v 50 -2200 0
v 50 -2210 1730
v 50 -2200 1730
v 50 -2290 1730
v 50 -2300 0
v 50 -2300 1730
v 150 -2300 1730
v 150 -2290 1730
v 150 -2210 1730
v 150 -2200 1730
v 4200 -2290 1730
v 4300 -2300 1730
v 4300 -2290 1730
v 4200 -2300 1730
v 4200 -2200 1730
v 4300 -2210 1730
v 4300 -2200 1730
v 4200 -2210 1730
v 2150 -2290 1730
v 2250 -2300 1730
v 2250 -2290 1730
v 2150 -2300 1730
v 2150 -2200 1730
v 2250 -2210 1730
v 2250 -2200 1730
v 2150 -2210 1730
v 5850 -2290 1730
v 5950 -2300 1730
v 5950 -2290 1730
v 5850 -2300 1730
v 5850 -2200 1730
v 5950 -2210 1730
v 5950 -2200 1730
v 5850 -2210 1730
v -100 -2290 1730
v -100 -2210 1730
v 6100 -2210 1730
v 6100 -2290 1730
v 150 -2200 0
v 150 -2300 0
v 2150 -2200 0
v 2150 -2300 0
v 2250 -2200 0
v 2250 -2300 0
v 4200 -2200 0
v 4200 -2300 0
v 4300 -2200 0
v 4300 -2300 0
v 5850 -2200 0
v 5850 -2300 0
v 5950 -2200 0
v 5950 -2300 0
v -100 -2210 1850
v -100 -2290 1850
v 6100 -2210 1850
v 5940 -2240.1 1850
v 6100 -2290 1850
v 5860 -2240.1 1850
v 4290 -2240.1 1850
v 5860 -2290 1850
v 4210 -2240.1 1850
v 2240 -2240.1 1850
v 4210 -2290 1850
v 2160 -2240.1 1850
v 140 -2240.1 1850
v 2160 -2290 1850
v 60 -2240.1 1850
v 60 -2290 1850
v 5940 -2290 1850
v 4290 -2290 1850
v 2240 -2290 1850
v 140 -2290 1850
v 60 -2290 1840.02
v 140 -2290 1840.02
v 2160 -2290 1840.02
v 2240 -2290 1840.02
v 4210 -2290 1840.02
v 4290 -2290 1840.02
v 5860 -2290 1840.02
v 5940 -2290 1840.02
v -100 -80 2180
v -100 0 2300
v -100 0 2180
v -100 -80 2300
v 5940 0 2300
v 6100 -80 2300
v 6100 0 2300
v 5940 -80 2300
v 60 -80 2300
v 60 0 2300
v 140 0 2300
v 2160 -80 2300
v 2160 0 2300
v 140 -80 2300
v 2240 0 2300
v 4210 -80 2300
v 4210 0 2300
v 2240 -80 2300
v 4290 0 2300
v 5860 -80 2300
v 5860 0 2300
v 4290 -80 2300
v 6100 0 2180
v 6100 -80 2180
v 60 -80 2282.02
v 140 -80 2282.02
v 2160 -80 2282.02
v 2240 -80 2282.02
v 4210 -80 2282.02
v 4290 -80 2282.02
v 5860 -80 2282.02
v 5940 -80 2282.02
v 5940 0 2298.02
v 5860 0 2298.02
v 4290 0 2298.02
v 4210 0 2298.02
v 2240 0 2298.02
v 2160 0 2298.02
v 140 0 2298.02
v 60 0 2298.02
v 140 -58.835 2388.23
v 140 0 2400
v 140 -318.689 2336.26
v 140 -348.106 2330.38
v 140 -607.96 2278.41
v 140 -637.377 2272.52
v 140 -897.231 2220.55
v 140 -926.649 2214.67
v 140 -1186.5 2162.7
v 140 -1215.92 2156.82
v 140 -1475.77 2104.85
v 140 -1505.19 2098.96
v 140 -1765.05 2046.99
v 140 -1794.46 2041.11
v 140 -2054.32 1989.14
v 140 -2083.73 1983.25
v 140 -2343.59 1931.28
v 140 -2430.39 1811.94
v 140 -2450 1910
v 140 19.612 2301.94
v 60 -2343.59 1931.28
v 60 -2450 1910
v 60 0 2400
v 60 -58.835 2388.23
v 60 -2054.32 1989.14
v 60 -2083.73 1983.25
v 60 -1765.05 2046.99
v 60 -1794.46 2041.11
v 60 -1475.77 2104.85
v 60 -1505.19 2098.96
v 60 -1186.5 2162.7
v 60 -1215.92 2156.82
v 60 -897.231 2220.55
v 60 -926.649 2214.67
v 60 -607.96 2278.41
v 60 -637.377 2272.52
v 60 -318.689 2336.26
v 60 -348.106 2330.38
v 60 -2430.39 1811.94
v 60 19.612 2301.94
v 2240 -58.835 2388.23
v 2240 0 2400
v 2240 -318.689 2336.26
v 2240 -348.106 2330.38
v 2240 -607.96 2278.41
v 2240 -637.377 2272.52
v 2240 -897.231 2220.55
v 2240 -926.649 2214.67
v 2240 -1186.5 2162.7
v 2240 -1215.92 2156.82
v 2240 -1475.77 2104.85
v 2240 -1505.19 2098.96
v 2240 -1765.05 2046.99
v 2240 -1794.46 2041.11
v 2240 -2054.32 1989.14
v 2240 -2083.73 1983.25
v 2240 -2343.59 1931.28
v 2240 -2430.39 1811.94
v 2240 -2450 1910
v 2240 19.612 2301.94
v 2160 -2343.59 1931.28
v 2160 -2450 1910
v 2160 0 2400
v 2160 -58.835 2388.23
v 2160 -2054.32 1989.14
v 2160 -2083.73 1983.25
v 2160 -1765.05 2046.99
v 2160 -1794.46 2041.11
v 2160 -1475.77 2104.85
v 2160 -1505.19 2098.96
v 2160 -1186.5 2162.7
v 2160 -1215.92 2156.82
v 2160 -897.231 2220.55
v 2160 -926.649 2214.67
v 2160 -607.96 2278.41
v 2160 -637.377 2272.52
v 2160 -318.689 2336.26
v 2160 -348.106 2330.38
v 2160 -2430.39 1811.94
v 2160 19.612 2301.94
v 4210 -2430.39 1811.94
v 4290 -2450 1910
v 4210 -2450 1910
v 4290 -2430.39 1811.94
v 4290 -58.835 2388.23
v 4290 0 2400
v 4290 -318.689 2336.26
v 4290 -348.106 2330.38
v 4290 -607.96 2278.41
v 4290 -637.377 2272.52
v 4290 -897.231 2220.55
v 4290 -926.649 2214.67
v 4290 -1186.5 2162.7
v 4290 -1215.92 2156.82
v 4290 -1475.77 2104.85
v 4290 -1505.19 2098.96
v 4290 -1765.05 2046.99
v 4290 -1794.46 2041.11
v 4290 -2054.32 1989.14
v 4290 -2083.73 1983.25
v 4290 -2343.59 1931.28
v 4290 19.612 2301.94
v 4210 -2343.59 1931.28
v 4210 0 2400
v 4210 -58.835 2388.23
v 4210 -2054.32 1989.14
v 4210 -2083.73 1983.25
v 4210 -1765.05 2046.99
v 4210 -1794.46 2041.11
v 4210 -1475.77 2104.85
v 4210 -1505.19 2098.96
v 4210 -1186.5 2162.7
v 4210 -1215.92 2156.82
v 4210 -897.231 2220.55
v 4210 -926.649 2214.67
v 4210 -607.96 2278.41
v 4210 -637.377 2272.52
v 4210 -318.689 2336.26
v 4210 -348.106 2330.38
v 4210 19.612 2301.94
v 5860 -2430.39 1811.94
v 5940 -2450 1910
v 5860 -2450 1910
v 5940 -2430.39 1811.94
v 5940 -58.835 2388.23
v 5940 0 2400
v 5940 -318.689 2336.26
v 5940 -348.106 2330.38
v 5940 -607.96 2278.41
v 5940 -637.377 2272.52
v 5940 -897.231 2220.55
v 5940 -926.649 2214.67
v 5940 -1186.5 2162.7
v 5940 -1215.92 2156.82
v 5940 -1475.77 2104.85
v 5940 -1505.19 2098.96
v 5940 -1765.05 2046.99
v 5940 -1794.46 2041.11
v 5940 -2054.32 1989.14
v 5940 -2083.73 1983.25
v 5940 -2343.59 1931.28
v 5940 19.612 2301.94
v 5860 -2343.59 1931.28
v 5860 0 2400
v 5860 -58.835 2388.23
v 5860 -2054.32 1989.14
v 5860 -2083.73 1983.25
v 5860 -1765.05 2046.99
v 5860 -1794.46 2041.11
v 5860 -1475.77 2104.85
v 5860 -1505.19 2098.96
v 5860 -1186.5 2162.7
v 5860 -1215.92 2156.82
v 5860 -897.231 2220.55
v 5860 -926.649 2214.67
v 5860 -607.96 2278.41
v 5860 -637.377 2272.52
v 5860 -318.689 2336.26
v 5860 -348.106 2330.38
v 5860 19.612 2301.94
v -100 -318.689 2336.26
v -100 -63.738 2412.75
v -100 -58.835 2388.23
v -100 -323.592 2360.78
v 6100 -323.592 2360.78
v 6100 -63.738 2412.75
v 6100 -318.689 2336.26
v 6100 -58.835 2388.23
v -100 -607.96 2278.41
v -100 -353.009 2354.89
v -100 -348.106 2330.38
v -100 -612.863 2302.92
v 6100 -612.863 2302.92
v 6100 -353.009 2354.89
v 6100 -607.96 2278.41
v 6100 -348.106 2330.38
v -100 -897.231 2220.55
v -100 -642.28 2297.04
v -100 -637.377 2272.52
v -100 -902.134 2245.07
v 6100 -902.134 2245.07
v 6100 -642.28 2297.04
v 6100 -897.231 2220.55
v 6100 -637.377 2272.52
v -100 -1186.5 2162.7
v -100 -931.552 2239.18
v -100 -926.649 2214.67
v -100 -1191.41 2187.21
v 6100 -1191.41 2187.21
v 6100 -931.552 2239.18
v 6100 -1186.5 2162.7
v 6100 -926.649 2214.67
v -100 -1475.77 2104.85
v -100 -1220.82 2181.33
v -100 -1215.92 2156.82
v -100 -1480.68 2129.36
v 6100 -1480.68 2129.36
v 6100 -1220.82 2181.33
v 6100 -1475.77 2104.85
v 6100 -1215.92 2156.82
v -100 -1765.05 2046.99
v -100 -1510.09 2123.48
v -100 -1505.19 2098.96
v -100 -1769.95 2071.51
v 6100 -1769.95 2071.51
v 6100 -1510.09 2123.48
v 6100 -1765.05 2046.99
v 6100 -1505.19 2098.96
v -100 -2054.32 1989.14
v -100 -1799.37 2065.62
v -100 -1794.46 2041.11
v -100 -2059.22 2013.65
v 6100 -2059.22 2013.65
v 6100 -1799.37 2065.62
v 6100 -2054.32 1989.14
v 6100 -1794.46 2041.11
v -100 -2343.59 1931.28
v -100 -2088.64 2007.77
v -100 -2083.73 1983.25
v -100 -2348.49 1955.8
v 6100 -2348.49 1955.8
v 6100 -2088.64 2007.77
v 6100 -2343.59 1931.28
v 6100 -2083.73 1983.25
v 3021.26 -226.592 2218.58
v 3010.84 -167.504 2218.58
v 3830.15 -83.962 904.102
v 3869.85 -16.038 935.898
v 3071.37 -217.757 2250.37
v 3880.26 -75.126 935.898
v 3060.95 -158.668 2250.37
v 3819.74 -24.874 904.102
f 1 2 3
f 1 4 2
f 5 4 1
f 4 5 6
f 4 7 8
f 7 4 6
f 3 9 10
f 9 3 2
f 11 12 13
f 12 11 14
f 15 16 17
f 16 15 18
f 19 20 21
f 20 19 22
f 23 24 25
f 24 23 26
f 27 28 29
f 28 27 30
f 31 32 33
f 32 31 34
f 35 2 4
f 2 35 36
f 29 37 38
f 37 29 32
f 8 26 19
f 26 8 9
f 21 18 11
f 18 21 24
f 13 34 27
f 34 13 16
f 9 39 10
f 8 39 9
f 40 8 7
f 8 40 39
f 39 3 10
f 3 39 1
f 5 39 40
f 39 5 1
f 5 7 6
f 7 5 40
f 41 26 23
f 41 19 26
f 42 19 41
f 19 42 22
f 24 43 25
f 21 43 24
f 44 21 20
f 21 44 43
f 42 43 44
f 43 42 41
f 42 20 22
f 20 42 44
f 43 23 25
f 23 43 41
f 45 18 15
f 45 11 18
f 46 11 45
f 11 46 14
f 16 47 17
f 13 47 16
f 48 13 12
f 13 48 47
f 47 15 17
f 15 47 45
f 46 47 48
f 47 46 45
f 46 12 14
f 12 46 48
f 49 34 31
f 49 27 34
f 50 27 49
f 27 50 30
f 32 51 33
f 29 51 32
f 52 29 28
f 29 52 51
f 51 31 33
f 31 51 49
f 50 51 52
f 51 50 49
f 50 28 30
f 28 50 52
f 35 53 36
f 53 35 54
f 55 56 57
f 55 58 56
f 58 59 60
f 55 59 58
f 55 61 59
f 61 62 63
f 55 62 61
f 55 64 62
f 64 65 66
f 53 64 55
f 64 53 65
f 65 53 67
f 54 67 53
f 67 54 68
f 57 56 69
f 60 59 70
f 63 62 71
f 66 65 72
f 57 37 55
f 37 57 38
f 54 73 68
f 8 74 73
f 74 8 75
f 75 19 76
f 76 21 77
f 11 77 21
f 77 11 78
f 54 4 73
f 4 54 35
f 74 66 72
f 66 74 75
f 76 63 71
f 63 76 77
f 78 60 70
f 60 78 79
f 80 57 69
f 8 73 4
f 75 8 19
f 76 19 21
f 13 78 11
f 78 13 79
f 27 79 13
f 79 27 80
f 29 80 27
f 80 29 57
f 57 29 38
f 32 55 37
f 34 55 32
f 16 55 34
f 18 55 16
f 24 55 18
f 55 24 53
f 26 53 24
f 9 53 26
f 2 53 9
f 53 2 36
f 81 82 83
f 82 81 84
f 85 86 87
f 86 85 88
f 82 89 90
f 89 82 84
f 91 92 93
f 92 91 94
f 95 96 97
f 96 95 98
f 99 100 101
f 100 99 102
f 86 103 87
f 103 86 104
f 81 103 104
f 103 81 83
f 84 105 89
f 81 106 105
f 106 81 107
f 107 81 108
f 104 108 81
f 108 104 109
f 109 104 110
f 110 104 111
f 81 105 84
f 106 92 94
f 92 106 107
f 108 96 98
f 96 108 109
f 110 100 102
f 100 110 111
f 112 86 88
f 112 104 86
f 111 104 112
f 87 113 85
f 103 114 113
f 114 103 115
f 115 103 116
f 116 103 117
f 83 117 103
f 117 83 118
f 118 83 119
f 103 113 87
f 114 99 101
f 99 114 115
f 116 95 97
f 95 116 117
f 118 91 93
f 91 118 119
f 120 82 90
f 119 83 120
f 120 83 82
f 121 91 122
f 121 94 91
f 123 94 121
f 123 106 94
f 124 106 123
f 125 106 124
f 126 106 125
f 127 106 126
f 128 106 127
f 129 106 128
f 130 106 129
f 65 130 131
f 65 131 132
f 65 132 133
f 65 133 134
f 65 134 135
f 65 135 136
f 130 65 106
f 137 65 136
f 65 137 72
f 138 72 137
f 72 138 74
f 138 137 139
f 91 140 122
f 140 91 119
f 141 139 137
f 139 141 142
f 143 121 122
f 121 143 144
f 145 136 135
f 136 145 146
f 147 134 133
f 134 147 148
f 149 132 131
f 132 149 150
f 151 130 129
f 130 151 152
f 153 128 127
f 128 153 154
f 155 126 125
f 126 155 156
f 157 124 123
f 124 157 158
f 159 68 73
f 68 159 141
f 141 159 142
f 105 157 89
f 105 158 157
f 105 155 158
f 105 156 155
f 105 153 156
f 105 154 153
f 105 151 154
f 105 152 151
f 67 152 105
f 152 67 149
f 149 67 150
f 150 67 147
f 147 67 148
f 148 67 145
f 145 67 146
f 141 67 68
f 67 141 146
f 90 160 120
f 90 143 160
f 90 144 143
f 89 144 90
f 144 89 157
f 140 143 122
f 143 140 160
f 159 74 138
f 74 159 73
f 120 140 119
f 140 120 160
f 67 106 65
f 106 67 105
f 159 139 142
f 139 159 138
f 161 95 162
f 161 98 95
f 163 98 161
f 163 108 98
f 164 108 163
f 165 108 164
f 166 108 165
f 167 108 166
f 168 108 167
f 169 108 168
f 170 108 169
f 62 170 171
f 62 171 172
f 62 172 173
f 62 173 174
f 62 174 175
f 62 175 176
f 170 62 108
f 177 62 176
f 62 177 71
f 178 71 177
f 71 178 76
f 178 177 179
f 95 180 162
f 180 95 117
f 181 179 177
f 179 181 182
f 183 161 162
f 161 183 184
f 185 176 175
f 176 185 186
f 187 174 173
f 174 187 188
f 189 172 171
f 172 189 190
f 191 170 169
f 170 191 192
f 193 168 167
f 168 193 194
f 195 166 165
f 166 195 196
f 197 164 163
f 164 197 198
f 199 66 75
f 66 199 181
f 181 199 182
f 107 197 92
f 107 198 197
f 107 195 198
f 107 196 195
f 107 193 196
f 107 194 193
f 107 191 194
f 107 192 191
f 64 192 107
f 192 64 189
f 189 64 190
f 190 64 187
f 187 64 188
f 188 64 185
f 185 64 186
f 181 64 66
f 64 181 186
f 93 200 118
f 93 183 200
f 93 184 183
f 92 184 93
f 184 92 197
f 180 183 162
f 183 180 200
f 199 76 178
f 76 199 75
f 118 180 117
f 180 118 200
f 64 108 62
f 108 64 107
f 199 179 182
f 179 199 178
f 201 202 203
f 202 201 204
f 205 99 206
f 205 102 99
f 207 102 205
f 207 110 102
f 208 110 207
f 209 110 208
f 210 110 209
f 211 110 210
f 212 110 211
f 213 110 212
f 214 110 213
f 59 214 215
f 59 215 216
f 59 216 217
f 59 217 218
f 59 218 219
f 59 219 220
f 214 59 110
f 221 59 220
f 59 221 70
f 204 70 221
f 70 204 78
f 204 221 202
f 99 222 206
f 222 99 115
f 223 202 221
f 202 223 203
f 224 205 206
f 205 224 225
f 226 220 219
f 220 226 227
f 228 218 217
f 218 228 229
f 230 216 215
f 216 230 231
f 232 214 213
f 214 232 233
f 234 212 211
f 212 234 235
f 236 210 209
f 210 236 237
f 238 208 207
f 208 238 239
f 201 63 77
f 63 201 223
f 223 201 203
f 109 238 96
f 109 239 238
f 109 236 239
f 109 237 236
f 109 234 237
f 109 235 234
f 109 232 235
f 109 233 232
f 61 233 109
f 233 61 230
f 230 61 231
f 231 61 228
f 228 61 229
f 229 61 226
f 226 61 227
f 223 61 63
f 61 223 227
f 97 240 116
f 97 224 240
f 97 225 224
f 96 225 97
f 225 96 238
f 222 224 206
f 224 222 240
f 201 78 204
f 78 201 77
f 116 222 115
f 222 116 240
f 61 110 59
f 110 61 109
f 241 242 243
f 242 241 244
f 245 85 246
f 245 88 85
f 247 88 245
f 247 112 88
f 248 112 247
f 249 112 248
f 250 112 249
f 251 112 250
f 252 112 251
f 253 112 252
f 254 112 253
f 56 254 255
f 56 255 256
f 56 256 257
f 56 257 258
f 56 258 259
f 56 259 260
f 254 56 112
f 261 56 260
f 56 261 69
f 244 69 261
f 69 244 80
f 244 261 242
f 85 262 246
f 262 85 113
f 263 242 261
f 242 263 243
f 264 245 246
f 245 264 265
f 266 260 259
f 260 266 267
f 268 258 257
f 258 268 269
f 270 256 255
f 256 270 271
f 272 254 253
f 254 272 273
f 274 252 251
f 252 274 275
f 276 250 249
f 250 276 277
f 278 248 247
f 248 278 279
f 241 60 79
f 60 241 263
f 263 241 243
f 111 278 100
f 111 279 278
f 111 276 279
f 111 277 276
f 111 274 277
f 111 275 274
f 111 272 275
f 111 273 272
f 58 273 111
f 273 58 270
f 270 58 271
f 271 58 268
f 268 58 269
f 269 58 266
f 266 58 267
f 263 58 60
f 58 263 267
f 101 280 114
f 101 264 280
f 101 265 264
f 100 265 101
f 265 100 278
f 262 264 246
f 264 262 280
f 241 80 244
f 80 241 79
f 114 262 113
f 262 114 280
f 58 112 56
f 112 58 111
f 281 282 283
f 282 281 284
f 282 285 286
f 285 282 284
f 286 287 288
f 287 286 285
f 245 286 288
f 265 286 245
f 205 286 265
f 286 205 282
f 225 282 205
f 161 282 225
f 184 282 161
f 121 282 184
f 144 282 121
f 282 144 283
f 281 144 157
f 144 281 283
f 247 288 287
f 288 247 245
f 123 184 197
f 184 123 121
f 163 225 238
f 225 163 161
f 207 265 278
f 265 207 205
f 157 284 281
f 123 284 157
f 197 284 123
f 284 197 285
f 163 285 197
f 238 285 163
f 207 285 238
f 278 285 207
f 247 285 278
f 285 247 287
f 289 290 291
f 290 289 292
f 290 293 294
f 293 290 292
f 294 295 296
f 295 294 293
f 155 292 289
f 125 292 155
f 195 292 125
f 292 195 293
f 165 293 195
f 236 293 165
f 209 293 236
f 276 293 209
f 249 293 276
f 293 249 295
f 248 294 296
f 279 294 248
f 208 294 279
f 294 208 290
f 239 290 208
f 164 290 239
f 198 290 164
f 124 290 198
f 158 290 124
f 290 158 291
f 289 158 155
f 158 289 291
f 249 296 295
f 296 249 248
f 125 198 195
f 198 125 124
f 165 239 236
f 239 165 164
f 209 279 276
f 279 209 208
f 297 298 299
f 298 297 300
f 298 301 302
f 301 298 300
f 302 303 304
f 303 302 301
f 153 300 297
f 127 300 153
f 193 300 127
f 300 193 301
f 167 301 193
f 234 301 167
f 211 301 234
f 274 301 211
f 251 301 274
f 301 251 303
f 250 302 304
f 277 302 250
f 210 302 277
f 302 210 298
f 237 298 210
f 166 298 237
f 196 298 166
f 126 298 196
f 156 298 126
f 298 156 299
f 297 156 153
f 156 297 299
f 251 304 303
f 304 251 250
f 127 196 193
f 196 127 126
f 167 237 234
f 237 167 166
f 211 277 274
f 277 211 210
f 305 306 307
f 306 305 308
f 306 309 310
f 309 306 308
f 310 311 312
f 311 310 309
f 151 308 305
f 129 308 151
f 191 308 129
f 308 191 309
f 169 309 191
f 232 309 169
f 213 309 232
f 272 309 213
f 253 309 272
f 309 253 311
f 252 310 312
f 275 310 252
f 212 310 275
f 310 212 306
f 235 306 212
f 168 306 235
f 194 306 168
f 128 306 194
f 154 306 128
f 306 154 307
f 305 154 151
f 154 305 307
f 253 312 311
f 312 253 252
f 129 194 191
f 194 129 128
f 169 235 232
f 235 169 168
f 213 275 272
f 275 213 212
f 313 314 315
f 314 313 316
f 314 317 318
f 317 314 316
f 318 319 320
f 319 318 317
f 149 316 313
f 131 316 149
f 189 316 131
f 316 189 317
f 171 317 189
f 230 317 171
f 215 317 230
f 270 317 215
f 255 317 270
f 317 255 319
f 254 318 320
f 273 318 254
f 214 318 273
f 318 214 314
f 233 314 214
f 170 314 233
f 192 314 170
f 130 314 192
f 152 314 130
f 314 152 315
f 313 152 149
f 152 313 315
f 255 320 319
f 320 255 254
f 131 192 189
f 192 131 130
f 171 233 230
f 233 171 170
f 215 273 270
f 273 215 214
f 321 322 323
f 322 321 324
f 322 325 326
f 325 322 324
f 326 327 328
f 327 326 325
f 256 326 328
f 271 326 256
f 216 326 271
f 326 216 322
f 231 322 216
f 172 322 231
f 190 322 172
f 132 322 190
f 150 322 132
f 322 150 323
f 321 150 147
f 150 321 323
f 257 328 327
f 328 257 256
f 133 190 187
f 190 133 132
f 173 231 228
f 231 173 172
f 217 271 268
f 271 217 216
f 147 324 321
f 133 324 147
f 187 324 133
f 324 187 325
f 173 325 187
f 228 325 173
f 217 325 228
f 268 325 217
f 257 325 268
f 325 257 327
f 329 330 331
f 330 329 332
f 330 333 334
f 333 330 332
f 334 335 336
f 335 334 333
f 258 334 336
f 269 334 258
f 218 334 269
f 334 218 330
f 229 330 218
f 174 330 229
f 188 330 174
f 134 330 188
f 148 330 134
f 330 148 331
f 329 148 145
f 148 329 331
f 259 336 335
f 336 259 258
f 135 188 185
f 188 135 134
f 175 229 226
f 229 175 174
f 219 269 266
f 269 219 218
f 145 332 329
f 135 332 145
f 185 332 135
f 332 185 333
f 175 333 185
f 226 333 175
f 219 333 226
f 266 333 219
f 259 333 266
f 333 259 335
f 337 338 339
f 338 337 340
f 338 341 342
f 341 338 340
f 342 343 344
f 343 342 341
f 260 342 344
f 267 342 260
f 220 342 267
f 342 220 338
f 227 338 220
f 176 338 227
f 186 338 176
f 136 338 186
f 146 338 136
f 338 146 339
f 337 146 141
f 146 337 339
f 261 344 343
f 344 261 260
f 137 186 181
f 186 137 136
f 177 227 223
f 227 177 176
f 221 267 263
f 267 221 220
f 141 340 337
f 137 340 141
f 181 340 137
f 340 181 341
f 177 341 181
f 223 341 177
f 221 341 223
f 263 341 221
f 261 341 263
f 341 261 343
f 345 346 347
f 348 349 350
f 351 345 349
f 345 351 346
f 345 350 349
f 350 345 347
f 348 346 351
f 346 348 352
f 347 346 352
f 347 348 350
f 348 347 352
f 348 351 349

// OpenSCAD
// file: tea_shop_pergola_parameters.scad
// =============================================================================
// Tea Shop — GROUP 3: PERGOLA PARAMETERS
// -----------------------------------------------------------------------------
// All units: mm (1000 mm = 1.0 m), real-life scale.
// Shared global coordinate system (identical to Groups 1 & 2):
//   +X -> left -> right  (0 = left outer wall face, BUILD_W = right outer wall)
//   +Y -> front -> back  (0 = front eave wall face, BUILD_D = back wall)
//   +Z -> up             (0 = ground / plinth top datum)
//   Porch canopy extends in negative Y (forward, from Y = 0 to Y ≈ -2450 mm).
// =============================================================================

// --- SHARED GLOBAL VARIABLES (from Groups 1 & 2 — identical values) ----------
WALL_T  = 250;   // wall panel thickness                      (0.25 m)
BUILD_W = 6000;  // building width along X                    (6.00 m)
BUILD_D = 4000;  // building depth along Y                    (4.00 m)
BACK_H  = 3200;  // wall height at BACK (tall lean-to side)   (3.20 m)
FRONT_H = 2400;  // wall height at FRONT eave (short side)    (2.40 m)

// Group 1 alias names
wall_thickness    = WALL_T;
building_width    = BUILD_W;
building_depth    = BUILD_D;
back_height       = BACK_H;
front_eave_height = FRONT_H;

// Group 1 front opening & plinth references:
sill_height       = 900;   // knee-wall sill datum where brace foot rests (0.90 m)
base_front_margin = 3000;  // total front porch slab depth               (3.00 m)

// Group 2 roof slope derivation (pergola slope follows this exact angle):
ROOF_RISE  = BACK_H - FRONT_H;  // 800 mm
ROOF_RUN   = BUILD_D;            // 4000 mm
ROOF_ANGLE = atan(ROOF_RISE / ROOF_RUN); // ~11.3099°


// =============================================================================
// GROUP 3 PARAMETERS — Pergola Structure & Dimensions
// =============================================================================

// --- Post Cross-Section & Layout ---------------------------------------------
// REFERENCE NOTE: Posts are square timber (~100x100 mm), confirmed from
// wireframe (countryside-tea-shop-3d-model-9cc7378ff7.webp).
POST_SIZE = 100;  // square timber post dimension (100 mm × 100 mm) (0.10 m)

// Y coordinate of the front posts line:
// Placed at Y = -2250 mm (~75% forward across the 3.0 m porch slab),
// leaving ~750 mm open patio in front of posts as shown in reference renders.
POST_Y    = -2250;

// Array of 4 post positions [X, Y]:
// Derived from front elevation proportions:
//   - Post 1 (X=100)  : near left edge of pergola / bench area
//   - Post 2 (X=2200) : intermediate post subdividing wide 3.4m service window span
//   - Post 3 (X=4250) : positioned at mid-pier directly supporting signboard
//   - Post 4 (X=5900) : near right corner of pergola
PERGOLA_POST_POSITIONS = [
    [100,  POST_Y],  // Post 1: Front-Left
    [2200, POST_Y],  // Post 2: Front-Mid-Left
    [4250, POST_Y],  // Post 3: Front-Mid-Right (under "TEA SHOP" sign)
    [5900, POST_Y]   // Post 4: Front-Right
];

// --- Beam Dimensions ---------------------------------------------------------
MAIN_BEAM_WIDTH  = 80;   // thickness of header & ledger beams along Y (0.08 m)
MAIN_BEAM_HEIGHT = 120;  // vertical depth of header & ledger beams    (0.12 m)

// --- Cross Beams / Rafters ---------------------------------------------------
CROSS_BEAM_WIDTH  = 80;   // rafter timber thickness along X            (0.08 m)
CROSS_BEAM_HEIGHT = 100;  // rafter timber depth normal to slope        (0.10 m)

// Rafter X positions aligning directly over the 4 posts:
CROSS_BEAM_X_POSITIONS = [100, 2200, 4250, 5900];

// Sloped length of rafter from front wall (Y=0) to 200 mm past the posts:
CROSS_BEAM_SLOPE_LEN = (abs(POST_Y) + 200) / cos(ROOF_ANGLE);

// --- Pergola Slope Datum & Post Height Derivation ----------------------------
// The pergola roof slopes DOWNWARDS from the front wall eave (Y=0, Z=FRONT_H)
// toward the front posts (Y=POST_Y).
// Under the slope, the rafter top is at: FRONT_H - abs(POST_Y) * tan(ROOF_ANGLE).
// Below the rafters is the header beam (MAIN_BEAM_HEIGHT).
// Post tops touch the underside of the header beam:
PERGOLA_EAVE_Z = FRONT_H;
POST_HEIGHT    = PERGOLA_EAVE_Z - abs(POST_Y) * tan(ROOF_ANGLE) - CROSS_BEAM_HEIGHT - MAIN_BEAM_HEIGHT;

// --- Diagonal Prop Brace -----------------------------------------------------
// Single prop strut visible in window wireframe (8ffafd36e4.webp), anchoring
// near the counter sill and rising diagonally to the overhead rafter.
BRACE_WIDTH     = 60;   // diagonal brace width                       (0.06 m)
BRACE_THICKNESS = 60;   // diagonal brace thickness                   (0.06 m)
BRACE_LENGTH    = 1550; // length along diagonal strut axis           (1.55 m)
BRACE_ANGLE     = 32;   // angle of brace from vertical in degrees

// --- Slatted Roof Canopy (Planks) --------------------------------------------
// 8 flat timber planks running along X (spanning full width), arrayed along
// the slope from the front wall eave to cantilever slightly past the front posts.
SLAT_WIDTH        = 265;  // width of each individual wooden plank      (0.265 m)
SLAT_THICKNESS    = 25;   // thickness of timber plank                  (0.025 m)
SLAT_GAP          = 30;   // air gap between consecutive slats          (0.030 m)
SLAT_COUNT        = 8;    // count matching 8 planks visible in wireframe
SLAT_LENGTH       = 6200; // full span along X (covers 6000 mm + 100 mm side margins)
SLAT_START_OFFSET = 60;   // distance along slope from wall face to first slat (mm)
// file: tea_shop_pergola_modules.scad
// =============================================================================
// Tea Shop — GROUP 3: PERGOLA MODULE LIBRARY
// -----------------------------------------------------------------------------
// Defines all pergola part modules. Creates NO geometry on its own when
// included, allowing individual part_*.scad export files and the assembly
// preview file to include it cleanly.
//
// SHARED GLOBAL COORDINATE SYSTEM (identical to Groups 1 & 2):
//   +X -> left -> right  (0 = left outer wall face, BUILD_W = right outer wall)
//   +Y -> front -> back  (0 = front eave wall face, BUILD_D = back wall)
//   +Z -> up             (0 = ground / plinth top datum)
//   Porch canopy extends in negative Y (forward, from Y = 0 to Y ≈ -2450 mm).
//
// SLOPE CORRECTION:
//   Because the porch is in the negative Y direction (-Y), applying a POSITIVE
//   rotation `rotate([ROOF_ANGLE, 0, 0])` causes the coordinate `[0, -y, 0]`
//   to rotate DOWNWARD into negative Z: `Z = -y * sin(ROOF_ANGLE)`.
//   This ensures the pergola rafters and slats slope DOWNWARDS toward the front
//   posts, resting flush and continuous with the building's roof line.
//
// TODO: The hanging "TEA SHOP" sign and its mounting bracket (a later group)
//       will attach to the main header beam / roof slats near Post 3 (X=4250).
// TODO: The customer bench, stools, and water dispenser stand (later groups)
//       sit on the base slab beneath this pergola structure at Z=0.
// =============================================================================

include <tea_shop_pergola_parameters.scad>;


// =============================================================================
// MODULE 1: pergola_post()
// -----------------------------------------------------------------------------
// A single vertical square timber post modeled at the local origin:
//   Centred in X and Y ([-POST_SIZE/2 .. +POST_SIZE/2]), rising from Z=0
//   to Z=POST_HEIGHT (touching the underside of the front header beam).
// Instanced 4 times via translate() in assemble() — single reusable module.
// =============================================================================
module pergola_post() {
    translate([-POST_SIZE/2, -POST_SIZE/2, 0])
        cube([POST_SIZE, POST_SIZE, POST_HEIGHT]);
}


// =============================================================================
// MODULE 2: pergola_main_beam()
// -----------------------------------------------------------------------------
// The horizontal primary beam system:
//   1. Front header beam: spans across all 4 post tops at Y = POST_Y,
//      distributing load and directly supporting the sloped rafters.
//   2. Rear ledger beam: runs along the front wall eave (Y=0), supporting
//      the upper ends of the rafters.
// =============================================================================
module pergola_main_beam() {
    // 1. Front header beam resting directly on top of the front posts
    translate([-100, POST_Y - MAIN_BEAM_WIDTH/2, POST_HEIGHT])
        cube([BUILD_W + 200, MAIN_BEAM_WIDTH, MAIN_BEAM_HEIGHT]);

    // 2. Rear wall ledger beam anchored to the front wall below the eave
    translate([-100, -MAIN_BEAM_WIDTH, PERGOLA_EAVE_Z - MAIN_BEAM_HEIGHT - CROSS_BEAM_HEIGHT])
        cube([BUILD_W + 200, MAIN_BEAM_WIDTH, MAIN_BEAM_HEIGHT]);
}


// =============================================================================
// MODULE 3: pergola_diagonal_brace()
// -----------------------------------------------------------------------------
// A single diagonal timber brace modeled at local origin. Oriented at BRACE_ANGLE
// from vertical. Instanced at the service counter sill to support the overhead
// rafter beam, exactly as shown in the reference wireframe pass.
// =============================================================================
module pergola_diagonal_brace() {
    rotate([0, -BRACE_ANGLE, 10])
        translate([-BRACE_WIDTH/2, -BRACE_THICKNESS/2, 0])
            cube([BRACE_WIDTH, BRACE_THICKNESS, BRACE_LENGTH]);
}


// =============================================================================
// MODULE 4: pergola_cross_beam()
// -----------------------------------------------------------------------------
// A single sloped rafter running perpendicular to the building (in Y direction).
// Modeled at local origin (X=0) and sloped DOWNWARD at ROOF_ANGLE:
//   - Starts at the front wall ledger beam (Y=0)
//   - Slopes down to bear across the front header beam at POST_Y
//   - Projects 200 mm past the posts as an exposed rafter tail
// =============================================================================
module pergola_cross_beam() {
    translate([0, 0, PERGOLA_EAVE_Z])
        rotate([ROOF_ANGLE, 0, 0])
            translate([-CROSS_BEAM_WIDTH/2, -CROSS_BEAM_SLOPE_LEN, -CROSS_BEAM_HEIGHT])
                cube([CROSS_BEAM_WIDTH, CROSS_BEAM_SLOPE_LEN, CROSS_BEAM_HEIGHT]);
}


// =============================================================================
// MODULE 5: pergola_slat()
// -----------------------------------------------------------------------------
// A single flat timber canopy plank running along X (spanning the full width).
// Instanced and arrayed in assemble() via a for loop down the sloped plane,
// resting directly on top of the rafters.
// =============================================================================
module pergola_slat() {
    translate([-100, -SLAT_WIDTH, 0])
        cube([SLAT_LENGTH, SLAT_WIDTH, SLAT_THICKNESS]);
}


// =============================================================================
// ASSEMBLE MODULE — Visual verification preview (not for export)
// -----------------------------------------------------------------------------
// Press F5 in OpenSCAD to view all Group 3 pergola components together in color.
// For individual STL export, use the dedicated part_*.scad files.
// =============================================================================
module assemble() {
    // 1. Posts (4 instances positioned in shared global coordinates)
    color("SaddleBrown") {
        for (pos = PERGOLA_POST_POSITIONS) {
            translate([pos[0], pos[1], 0])
                pergola_post();
        }
    }

    // 2. Main horizontal beams (front header + rear ledger)
    color("Peru")
        pergola_main_beam();

    // 3. Cross beams / rafters (4 instances positioned over each post line)
    color("BurlyWood") {
        for (x = CROSS_BEAM_X_POSITIONS) {
            translate([x, 0, 0])
                pergola_cross_beam();
        }
    }

    // 4. Slatted canopy roof (8 flat planks arrayed along the slope)
    color("DarkGoldenrod") {
        for (i = [0 : SLAT_COUNT - 1]) {
            dist = SLAT_START_OFFSET + i * (SLAT_WIDTH + SLAT_GAP);
            translate([0, 0, PERGOLA_EAVE_Z])
                rotate([ROOF_ANGLE, 0, 0])
                    translate([0, -dist, 0])
                        pergola_slat();
        }
    }

    // 5. Diagonal prop brace (anchored at the service window counter sill)
    color("DarkSlateGray") {
        translate([3850, -50, sill_height + 20])
            pergola_diagonal_brace();
    }
}

// Default preview invocation:
assemble();
// main file
// =============================================================================
// part_pergola_posts.scad — EXPORT ALL 4 PERGOLA POSTS as one fused solid.
// -----------------------------------------------------------------------------
// Press F6 (render), then File -> Export as STL.
// All 4 post instances are unioned into one STL for single-operation printing.
// (Each post can also be split out individually if needed by printing just
//  one translate()+pergola_post() call.)
// =============================================================================

include <tea_shop_pergola_modules.scad>;

union() {
    for (pos = PERGOLA_POST_POSITIONS) {
        translate([pos[0], pos[1], 0])
            pergola_post();
    }
}
